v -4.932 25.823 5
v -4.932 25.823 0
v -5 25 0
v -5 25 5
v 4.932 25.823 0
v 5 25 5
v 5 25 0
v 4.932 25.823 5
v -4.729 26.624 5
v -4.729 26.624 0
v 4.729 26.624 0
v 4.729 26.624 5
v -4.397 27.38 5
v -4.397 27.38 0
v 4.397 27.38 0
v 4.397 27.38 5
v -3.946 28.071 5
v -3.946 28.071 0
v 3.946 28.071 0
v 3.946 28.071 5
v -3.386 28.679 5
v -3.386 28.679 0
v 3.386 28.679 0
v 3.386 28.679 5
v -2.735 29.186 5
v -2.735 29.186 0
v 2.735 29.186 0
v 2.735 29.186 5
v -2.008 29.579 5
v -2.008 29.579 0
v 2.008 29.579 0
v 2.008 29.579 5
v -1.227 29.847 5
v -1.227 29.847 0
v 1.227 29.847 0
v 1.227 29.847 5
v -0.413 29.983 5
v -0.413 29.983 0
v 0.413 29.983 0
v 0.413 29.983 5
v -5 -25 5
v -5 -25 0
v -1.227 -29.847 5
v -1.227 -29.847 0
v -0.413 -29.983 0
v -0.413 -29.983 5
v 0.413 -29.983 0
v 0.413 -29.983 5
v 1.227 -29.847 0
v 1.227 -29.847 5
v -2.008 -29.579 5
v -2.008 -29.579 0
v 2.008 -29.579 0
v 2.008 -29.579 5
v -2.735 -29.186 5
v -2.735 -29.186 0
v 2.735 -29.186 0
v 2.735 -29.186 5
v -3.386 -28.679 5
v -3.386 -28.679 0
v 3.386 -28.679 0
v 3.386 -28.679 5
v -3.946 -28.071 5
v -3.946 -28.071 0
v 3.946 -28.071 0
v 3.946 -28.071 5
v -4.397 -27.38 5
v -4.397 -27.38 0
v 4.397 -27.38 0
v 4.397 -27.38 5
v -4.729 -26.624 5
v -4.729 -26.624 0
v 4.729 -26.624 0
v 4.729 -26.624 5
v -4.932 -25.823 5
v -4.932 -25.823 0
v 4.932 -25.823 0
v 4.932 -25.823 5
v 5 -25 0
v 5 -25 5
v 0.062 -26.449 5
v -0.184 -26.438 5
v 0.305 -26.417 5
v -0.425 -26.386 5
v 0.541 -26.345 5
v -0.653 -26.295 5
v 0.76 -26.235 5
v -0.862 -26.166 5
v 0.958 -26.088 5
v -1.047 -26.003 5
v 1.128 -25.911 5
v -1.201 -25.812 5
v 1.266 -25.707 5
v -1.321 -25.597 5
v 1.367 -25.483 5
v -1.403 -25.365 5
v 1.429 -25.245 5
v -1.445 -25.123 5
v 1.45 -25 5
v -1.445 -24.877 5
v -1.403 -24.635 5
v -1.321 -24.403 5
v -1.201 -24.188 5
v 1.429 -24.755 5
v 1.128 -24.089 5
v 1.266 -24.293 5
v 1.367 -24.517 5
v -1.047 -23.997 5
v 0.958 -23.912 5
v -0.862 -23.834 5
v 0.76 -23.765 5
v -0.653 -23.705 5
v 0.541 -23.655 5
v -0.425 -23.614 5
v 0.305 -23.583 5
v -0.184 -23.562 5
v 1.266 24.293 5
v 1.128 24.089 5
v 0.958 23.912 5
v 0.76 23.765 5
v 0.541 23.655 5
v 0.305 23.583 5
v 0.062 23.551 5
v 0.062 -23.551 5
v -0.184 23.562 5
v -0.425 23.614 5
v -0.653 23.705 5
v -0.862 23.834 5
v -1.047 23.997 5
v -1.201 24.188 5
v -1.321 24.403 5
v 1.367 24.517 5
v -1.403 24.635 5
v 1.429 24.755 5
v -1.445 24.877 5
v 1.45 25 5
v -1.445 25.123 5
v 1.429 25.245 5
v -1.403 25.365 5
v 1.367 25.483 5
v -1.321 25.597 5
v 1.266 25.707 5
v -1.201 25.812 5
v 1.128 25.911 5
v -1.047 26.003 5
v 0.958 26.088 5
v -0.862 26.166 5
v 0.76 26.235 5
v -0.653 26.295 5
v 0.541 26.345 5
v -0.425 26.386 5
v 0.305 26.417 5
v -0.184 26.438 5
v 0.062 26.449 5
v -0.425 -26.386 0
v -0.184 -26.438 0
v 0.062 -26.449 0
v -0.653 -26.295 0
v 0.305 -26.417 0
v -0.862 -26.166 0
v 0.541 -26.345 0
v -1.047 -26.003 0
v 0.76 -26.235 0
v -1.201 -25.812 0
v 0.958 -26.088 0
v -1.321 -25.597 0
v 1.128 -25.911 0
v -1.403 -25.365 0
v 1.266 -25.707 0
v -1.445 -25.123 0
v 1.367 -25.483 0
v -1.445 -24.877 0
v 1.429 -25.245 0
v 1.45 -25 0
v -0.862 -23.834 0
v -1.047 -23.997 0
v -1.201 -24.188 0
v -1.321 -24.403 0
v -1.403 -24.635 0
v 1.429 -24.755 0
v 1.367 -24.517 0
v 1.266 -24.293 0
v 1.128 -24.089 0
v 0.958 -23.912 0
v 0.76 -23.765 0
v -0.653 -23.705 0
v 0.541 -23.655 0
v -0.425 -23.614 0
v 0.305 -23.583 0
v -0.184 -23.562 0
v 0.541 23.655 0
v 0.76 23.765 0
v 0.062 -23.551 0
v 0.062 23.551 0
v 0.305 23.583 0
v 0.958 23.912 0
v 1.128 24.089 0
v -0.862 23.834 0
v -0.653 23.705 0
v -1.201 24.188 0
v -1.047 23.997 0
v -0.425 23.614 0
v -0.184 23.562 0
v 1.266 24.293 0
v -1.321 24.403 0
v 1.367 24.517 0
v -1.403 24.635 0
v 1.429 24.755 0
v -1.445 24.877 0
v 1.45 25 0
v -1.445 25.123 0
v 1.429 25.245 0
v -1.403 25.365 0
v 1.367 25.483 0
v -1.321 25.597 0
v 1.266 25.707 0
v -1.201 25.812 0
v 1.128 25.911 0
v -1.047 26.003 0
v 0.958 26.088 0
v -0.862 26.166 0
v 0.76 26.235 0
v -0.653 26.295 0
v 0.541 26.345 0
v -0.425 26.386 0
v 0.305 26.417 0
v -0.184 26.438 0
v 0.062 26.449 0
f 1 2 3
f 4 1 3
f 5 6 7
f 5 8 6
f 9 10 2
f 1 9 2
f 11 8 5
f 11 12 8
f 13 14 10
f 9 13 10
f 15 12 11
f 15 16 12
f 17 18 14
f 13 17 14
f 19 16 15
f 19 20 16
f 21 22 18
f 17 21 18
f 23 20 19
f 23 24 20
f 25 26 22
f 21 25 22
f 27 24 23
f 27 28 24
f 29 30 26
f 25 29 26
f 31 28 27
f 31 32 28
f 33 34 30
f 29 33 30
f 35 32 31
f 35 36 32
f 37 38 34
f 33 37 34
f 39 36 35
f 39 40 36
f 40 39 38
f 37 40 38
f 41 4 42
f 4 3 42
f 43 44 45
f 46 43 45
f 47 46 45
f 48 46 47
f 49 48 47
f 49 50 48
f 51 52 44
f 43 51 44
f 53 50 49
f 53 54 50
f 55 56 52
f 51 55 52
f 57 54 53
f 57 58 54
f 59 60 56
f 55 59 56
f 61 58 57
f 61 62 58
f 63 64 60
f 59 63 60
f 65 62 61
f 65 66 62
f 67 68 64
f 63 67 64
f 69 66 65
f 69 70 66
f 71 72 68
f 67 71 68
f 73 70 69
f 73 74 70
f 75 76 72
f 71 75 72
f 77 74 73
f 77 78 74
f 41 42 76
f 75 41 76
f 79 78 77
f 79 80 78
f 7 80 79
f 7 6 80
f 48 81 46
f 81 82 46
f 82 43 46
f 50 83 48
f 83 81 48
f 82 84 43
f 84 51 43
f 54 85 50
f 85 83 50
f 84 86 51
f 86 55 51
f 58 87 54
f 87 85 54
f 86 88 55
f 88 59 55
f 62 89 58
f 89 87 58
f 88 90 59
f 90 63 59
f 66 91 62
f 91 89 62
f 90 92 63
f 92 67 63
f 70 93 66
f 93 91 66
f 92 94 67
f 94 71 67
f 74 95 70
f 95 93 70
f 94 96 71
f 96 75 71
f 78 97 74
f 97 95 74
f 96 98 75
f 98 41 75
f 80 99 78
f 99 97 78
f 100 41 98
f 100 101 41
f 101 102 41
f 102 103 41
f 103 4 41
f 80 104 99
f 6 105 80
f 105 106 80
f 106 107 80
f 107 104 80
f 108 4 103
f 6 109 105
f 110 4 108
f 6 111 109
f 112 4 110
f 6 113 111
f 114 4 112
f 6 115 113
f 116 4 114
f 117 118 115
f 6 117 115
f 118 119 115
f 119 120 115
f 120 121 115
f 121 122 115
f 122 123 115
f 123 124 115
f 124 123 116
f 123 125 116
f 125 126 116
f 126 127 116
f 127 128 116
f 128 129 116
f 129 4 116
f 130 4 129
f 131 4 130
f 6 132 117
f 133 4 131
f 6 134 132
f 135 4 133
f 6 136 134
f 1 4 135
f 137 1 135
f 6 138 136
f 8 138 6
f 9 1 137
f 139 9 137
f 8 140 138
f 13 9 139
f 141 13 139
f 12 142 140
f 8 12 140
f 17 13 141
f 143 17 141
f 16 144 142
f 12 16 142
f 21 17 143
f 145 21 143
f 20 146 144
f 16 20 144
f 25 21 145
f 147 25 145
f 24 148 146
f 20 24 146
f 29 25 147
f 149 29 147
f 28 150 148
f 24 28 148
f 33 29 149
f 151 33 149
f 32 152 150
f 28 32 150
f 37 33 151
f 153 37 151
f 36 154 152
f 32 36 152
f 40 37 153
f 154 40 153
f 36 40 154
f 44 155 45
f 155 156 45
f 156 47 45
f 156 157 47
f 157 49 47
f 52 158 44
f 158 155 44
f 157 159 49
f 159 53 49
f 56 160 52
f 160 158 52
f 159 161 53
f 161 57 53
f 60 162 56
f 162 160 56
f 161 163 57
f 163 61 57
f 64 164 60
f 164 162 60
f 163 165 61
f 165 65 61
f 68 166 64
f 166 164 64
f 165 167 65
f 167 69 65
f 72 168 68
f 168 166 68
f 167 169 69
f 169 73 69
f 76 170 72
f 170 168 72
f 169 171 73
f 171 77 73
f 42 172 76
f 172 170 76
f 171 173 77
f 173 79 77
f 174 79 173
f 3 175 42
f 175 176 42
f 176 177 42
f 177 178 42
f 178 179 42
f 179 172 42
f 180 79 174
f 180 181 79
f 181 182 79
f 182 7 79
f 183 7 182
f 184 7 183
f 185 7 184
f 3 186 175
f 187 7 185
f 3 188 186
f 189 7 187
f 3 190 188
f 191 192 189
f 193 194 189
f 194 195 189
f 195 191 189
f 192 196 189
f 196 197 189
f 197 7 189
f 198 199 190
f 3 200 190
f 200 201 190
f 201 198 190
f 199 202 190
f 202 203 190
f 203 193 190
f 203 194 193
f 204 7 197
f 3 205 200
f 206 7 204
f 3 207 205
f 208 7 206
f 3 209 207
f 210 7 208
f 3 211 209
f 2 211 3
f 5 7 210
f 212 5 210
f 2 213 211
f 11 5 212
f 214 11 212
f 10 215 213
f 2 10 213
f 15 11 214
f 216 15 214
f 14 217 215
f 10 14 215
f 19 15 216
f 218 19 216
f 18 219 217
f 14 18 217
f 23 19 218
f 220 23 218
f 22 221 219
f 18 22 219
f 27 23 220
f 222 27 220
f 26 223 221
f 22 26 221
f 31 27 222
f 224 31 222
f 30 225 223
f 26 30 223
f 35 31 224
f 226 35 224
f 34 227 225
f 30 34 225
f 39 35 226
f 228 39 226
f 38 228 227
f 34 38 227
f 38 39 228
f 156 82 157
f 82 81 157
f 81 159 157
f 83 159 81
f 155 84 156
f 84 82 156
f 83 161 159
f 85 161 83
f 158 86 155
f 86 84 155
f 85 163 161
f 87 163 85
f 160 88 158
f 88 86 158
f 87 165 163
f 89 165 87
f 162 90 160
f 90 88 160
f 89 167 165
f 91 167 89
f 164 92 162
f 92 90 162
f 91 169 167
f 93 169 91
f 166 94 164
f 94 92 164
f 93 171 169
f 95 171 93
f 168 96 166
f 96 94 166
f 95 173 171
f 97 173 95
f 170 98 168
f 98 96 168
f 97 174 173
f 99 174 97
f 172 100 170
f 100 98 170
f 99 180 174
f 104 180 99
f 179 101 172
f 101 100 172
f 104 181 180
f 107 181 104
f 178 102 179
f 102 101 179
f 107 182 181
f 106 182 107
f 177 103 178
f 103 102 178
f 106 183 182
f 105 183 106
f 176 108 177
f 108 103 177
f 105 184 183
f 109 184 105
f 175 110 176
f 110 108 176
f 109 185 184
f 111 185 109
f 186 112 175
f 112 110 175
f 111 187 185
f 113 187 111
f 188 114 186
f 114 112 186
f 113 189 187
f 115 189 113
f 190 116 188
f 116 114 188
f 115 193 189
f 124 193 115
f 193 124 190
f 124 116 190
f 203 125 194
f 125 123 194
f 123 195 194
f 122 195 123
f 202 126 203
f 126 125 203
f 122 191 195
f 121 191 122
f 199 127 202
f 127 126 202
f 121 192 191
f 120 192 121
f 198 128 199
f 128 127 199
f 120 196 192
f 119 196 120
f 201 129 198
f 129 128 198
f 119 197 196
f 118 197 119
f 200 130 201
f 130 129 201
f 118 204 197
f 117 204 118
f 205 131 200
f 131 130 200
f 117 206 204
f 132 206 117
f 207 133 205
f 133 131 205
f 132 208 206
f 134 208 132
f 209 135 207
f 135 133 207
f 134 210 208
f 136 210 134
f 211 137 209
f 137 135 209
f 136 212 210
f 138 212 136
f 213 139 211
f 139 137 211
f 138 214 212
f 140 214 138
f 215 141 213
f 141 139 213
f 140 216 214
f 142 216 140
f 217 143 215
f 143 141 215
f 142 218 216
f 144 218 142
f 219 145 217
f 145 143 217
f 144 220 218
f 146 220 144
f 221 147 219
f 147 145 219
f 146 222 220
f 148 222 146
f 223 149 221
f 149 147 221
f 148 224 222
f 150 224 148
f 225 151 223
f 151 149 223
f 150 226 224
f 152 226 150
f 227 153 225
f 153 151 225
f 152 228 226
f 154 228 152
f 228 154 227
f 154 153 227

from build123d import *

# Parameters (mm, degrees)
BOSS_EXTRUDE1_DEPTH    = 5
M2_5_CLEARANCE_HOLE1_D = 2.9


with BuildPart() as part:
    # Sketch1 → Boss-Extrude1 (new body)
    with BuildSketch(Plane.XY):
        with BuildLine():
            Line((5, 25), (5, -25))
            ThreePointArc((5, -25), (0, -30), (-5, -25))
            Line((-5, -25), (-5, 25))
            ThreePointArc((-5, 25), (0, 30), (5, 25))
        make_face()
    extrude(amount=BOSS_EXTRUDE1_DEPTH)

    # M2.5 Clearance Hole1 (through all)
    with Locations(Plane.XY.offset(5)):
        with Locations((0, 25), (0, -25)):
            Hole(M2_5_CLEARANCE_HOLE1_D / 2)


solid = part.part
